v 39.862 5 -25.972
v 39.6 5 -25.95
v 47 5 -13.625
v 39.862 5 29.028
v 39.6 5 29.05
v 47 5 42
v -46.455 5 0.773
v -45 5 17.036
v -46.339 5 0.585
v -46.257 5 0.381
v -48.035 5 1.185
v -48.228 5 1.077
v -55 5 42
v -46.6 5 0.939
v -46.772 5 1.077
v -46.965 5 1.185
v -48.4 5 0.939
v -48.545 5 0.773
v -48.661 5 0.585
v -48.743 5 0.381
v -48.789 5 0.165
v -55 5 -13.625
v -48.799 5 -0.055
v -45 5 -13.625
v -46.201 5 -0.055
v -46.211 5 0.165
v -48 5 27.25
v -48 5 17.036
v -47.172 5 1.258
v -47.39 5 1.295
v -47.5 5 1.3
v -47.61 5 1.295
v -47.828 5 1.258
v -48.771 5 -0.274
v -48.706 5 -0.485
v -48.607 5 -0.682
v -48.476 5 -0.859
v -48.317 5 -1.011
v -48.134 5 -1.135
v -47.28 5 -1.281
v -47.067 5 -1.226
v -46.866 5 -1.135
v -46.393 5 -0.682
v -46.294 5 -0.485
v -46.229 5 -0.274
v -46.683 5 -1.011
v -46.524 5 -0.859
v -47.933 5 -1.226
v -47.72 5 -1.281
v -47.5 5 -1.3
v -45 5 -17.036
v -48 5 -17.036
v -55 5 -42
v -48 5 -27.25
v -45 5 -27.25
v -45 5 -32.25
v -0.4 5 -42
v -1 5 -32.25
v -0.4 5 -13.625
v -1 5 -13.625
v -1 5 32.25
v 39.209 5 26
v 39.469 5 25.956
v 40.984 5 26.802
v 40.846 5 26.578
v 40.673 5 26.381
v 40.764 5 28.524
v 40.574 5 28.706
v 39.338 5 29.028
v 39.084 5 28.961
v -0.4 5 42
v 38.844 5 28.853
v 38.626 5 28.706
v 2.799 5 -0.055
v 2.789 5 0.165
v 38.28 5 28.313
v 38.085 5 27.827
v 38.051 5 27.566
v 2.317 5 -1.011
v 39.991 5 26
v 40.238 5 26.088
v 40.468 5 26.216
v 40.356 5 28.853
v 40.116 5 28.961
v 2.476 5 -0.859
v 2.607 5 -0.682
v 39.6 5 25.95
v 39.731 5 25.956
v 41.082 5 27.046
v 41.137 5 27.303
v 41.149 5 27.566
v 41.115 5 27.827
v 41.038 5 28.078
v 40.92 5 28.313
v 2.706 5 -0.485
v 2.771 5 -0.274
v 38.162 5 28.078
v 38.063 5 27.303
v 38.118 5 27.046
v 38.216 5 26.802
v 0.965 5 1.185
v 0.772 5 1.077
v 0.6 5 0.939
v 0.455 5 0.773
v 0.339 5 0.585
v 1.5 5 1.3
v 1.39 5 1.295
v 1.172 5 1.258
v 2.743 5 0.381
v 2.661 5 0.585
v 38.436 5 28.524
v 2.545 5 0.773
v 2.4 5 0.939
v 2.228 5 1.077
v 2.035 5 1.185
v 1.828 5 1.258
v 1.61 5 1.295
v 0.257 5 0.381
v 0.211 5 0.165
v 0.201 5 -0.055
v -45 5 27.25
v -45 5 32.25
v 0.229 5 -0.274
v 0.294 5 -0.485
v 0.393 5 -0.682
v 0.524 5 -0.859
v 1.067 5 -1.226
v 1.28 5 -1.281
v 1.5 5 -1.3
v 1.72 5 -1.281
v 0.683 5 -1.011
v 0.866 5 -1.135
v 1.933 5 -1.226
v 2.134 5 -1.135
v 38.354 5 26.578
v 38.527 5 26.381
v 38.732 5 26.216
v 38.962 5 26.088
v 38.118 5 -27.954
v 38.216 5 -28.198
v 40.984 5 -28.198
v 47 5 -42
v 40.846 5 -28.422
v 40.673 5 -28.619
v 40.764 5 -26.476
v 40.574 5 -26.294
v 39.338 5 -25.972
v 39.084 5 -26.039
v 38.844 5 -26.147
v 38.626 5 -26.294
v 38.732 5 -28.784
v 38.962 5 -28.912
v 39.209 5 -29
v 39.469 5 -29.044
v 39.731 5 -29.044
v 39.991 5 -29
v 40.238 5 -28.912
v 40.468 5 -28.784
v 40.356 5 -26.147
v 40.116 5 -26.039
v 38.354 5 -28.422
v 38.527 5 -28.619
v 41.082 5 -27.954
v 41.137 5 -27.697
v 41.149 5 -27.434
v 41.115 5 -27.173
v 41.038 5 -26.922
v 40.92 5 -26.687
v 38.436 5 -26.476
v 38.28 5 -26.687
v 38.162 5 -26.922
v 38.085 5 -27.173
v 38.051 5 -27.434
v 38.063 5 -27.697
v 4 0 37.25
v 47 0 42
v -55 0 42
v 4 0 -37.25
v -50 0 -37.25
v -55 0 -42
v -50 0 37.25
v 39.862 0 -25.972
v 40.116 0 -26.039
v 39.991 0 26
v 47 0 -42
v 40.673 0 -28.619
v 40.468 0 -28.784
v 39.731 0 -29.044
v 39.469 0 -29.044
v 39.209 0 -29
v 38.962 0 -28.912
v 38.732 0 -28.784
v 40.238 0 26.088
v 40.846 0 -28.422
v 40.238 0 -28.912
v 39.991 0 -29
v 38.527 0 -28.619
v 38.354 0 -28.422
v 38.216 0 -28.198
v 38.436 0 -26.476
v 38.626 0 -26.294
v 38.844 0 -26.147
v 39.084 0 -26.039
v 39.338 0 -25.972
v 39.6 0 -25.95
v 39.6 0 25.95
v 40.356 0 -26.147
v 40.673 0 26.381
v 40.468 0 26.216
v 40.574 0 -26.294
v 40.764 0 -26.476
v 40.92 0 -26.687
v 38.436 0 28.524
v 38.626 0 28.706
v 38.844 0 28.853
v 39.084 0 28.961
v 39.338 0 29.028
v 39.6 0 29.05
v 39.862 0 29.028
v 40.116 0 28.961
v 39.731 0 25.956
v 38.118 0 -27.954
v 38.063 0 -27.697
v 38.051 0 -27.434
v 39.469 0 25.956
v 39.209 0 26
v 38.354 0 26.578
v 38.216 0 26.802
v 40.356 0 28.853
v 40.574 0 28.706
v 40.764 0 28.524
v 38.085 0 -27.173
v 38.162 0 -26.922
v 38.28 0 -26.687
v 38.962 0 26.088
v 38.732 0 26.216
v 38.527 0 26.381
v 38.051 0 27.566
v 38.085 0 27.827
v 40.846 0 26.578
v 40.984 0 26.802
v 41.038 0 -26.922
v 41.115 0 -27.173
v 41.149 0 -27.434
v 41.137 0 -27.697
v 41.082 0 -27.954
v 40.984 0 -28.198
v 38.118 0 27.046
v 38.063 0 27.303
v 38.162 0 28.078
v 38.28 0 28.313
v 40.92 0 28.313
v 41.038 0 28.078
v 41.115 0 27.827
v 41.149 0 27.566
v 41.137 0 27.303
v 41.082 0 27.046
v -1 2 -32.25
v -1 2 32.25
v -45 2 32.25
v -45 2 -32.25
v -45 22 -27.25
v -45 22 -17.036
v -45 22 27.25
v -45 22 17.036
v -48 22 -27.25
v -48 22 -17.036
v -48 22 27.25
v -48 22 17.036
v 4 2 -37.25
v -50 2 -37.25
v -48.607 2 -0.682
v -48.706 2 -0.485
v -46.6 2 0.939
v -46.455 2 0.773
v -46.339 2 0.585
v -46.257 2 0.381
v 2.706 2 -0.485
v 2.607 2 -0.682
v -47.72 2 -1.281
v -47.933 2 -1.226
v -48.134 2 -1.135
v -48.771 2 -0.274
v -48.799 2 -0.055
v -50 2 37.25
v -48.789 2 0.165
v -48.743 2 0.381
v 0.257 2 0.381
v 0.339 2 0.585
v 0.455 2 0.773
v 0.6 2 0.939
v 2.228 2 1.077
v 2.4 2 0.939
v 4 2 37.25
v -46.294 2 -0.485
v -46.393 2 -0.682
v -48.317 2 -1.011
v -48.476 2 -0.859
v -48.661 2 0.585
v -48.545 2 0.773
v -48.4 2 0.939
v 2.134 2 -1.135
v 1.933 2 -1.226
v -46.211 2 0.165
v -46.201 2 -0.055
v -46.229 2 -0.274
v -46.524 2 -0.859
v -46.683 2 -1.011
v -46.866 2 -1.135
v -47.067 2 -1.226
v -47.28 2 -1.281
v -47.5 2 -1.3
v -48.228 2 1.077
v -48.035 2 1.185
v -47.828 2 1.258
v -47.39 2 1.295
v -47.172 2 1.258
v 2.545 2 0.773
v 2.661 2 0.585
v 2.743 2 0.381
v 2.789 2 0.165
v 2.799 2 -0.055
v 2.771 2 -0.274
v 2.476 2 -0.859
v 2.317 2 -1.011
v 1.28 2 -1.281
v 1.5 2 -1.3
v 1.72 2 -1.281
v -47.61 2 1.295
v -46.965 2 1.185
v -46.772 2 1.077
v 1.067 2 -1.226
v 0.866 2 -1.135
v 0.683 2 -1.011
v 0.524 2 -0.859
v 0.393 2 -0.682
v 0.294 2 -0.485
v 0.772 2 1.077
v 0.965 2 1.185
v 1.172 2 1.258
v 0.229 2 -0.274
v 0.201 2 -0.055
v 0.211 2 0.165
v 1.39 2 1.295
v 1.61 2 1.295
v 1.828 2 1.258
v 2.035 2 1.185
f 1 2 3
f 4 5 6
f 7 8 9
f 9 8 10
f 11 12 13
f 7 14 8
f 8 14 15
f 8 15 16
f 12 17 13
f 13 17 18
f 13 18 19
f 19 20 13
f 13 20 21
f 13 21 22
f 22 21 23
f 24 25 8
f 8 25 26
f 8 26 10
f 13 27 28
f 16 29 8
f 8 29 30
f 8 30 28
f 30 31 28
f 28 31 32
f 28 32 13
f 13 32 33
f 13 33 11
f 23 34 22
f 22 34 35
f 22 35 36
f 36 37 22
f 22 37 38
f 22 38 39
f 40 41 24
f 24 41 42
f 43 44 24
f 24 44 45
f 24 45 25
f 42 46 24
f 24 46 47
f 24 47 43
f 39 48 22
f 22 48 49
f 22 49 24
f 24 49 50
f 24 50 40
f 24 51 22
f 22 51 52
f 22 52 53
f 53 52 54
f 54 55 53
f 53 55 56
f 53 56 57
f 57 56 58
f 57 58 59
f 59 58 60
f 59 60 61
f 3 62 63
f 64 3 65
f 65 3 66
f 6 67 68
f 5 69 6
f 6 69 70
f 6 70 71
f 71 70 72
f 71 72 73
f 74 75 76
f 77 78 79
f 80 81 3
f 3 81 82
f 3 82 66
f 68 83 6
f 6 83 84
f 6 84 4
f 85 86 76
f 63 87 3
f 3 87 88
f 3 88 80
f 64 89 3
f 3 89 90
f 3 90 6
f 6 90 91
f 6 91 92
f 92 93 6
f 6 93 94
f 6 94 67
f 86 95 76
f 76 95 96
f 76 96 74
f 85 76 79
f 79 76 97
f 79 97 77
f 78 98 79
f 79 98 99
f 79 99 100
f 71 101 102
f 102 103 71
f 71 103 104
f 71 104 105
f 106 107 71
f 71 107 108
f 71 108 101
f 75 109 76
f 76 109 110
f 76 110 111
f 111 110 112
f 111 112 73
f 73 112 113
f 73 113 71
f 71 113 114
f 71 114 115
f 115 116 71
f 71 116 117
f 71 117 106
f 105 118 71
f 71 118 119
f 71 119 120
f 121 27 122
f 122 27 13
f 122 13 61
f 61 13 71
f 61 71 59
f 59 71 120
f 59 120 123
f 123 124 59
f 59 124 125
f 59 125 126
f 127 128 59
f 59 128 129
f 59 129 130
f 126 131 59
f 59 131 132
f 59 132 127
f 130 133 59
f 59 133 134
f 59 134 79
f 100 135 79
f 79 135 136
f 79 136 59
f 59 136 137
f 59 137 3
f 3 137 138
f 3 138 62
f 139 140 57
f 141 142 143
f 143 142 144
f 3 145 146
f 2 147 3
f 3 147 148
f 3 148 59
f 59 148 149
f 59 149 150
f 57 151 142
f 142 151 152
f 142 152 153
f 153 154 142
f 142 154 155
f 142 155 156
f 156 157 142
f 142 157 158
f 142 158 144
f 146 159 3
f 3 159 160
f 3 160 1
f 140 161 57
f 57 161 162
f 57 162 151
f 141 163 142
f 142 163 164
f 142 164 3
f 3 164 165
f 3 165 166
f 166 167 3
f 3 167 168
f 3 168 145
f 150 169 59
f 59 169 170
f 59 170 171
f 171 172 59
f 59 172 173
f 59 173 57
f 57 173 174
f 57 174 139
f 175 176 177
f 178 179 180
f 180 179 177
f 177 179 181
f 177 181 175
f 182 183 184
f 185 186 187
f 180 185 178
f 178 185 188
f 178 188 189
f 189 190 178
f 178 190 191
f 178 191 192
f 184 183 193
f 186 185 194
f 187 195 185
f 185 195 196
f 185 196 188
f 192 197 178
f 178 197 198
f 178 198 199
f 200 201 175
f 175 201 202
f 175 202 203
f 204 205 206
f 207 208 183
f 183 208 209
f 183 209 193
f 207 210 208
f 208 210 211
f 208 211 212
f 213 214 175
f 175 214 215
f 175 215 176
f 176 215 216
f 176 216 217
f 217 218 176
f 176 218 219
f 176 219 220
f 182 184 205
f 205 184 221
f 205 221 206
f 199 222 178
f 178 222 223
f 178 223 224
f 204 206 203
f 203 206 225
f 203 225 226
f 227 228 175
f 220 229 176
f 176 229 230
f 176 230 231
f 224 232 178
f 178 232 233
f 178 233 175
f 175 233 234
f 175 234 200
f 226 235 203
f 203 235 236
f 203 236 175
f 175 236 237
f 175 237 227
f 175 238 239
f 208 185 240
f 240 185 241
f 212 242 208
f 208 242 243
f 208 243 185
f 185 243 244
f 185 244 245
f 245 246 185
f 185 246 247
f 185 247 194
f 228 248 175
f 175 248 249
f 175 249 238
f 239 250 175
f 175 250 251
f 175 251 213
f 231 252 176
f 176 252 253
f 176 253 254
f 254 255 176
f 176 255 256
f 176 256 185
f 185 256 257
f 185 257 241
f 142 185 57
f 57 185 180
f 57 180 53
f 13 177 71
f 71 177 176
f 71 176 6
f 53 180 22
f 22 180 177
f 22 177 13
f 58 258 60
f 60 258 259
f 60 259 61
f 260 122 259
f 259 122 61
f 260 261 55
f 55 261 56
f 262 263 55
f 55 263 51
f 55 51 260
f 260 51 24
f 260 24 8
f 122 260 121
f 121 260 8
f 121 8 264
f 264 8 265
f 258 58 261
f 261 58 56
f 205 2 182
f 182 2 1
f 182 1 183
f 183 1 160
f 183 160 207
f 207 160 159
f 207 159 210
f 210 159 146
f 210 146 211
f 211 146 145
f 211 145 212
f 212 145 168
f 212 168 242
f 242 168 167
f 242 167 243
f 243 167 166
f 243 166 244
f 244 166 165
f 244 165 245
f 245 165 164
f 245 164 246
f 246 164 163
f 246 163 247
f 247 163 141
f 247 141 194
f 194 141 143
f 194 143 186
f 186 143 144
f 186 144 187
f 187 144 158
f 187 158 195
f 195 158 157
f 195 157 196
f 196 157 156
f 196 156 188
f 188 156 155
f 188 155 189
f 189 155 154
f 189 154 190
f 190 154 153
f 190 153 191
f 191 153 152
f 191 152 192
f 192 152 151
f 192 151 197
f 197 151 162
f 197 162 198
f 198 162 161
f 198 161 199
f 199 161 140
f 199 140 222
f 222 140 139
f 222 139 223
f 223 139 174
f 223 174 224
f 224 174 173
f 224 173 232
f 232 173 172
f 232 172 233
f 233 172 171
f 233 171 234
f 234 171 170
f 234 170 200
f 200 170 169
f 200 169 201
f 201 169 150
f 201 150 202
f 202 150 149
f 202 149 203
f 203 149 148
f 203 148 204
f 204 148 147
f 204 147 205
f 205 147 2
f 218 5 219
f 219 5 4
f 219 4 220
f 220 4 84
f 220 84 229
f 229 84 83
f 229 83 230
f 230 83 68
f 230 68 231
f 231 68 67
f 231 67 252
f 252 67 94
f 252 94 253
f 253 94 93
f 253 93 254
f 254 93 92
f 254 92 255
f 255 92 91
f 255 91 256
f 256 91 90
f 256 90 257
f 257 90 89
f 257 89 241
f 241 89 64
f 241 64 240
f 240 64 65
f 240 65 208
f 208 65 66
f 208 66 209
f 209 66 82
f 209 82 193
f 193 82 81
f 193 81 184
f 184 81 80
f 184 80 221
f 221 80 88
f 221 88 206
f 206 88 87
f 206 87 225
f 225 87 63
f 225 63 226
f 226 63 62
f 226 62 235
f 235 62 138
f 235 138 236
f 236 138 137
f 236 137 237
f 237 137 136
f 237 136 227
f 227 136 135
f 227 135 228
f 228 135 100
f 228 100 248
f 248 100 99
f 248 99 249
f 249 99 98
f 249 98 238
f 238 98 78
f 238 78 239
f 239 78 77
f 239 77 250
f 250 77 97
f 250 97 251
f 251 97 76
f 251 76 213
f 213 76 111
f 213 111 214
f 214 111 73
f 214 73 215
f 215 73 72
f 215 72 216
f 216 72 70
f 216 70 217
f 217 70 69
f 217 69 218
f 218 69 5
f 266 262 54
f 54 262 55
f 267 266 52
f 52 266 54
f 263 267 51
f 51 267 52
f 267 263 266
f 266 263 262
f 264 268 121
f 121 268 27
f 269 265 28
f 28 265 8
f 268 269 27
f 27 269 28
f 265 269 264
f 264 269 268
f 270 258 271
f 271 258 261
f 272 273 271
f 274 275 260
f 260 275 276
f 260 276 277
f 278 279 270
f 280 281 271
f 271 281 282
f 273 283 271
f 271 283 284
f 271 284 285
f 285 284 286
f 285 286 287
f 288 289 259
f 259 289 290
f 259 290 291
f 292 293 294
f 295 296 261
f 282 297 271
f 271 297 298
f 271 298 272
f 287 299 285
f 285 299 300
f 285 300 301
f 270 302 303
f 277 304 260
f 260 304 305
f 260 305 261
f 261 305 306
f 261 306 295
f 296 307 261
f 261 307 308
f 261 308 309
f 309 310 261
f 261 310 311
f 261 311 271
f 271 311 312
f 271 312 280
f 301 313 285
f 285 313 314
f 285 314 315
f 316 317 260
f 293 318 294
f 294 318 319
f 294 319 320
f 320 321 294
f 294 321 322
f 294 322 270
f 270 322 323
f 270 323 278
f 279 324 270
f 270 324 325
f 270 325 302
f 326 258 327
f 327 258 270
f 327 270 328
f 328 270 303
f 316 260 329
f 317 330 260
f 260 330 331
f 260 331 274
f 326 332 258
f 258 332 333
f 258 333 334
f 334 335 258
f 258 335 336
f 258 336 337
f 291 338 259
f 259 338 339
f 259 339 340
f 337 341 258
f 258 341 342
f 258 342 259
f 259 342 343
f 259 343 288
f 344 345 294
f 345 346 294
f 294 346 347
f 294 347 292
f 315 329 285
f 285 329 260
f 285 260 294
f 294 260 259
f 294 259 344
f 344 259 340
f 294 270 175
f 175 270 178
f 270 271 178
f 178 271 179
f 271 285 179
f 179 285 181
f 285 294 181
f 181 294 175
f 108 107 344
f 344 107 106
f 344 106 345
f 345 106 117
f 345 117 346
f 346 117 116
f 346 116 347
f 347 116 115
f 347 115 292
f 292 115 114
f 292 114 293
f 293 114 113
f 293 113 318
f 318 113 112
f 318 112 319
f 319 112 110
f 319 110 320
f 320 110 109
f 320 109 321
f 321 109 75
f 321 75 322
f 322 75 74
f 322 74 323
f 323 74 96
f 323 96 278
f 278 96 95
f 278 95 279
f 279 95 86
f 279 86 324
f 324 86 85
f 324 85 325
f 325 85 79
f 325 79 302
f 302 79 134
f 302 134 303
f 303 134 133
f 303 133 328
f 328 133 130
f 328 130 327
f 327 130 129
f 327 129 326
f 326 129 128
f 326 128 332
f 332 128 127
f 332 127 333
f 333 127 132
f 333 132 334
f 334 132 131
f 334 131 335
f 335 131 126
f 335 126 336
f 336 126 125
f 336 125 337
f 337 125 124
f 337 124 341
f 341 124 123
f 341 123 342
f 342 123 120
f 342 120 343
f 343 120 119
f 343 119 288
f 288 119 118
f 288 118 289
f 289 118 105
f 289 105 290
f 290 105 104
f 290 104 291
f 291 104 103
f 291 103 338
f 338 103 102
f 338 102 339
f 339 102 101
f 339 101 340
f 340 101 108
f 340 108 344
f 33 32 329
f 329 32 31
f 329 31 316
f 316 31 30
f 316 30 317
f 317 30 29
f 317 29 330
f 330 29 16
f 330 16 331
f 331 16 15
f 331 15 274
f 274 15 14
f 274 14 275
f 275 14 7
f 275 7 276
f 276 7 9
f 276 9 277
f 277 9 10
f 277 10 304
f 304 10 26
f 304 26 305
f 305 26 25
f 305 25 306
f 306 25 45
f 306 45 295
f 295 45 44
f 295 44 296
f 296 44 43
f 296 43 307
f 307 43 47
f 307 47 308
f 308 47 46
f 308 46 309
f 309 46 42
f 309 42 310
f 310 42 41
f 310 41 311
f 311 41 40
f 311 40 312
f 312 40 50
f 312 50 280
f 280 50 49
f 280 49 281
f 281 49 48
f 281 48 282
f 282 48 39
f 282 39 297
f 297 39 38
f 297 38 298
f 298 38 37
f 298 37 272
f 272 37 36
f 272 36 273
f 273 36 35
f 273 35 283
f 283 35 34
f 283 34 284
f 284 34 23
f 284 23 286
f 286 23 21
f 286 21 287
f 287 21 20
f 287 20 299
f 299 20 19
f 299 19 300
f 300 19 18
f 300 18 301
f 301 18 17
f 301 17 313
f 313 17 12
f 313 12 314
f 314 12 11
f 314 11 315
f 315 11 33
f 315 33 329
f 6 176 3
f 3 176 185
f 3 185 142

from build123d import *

# Parameters (mm, degrees)
SKETCH1_W           = 110
SKETCH1_H           = 84
BOSS_EXTRUDE1_DEPTH = 5
SKETCH2_W           = 44
SKETCH2_H           = 64.5
CUT_EXTRUDE1_DEPTH  = 5
SKETCH3_R           = 1.55
CUT_EXTRUDE2_DEPTH  = 5
SKETCH5_W           = 3
SKETCH5_H           = 10.213632632
BOSS_EXTRUDE2_DEPTH = 17
SKETCH6_W           = 54
SKETCH6_H           = 74.5
CUT_EXTRUDE3_DEPTH  = 2
CUT_EXTRUDE4_REACH  = 22
SKETCH7_R           = 1.3
SKETCH8_W           = 84
SKETCH8_H           = 5
CUT_EXTRUDE5_DEPTH  = 8


with BuildPart() as part:
    # Sketch1 → Boss-Extrude1 (new body)
    with BuildSketch(Plane(origin=(0, 0, 0), x_dir=(1, 0, 0), z_dir=(0, 1, 0))):
        Rectangle(SKETCH1_W, SKETCH1_H)
    extrude(amount=BOSS_EXTRUDE1_DEPTH)

    # Sketch2 → Cut-Extrude1 (cut)
    with BuildSketch(Plane(origin=(0, 5, 0), x_dir=(1, 0, 0), z_dir=(0, 1, 0))):
        with Locations((-23, 0)):
            Rectangle(SKETCH2_W, SKETCH2_H)
    extrude(amount=-CUT_EXTRUDE1_DEPTH, mode=Mode.SUBTRACT)

    # Sketch3 → Cut-Extrude2 (cut)
    with BuildSketch(Plane(origin=(0, 5, 0), x_dir=(1, 0, 0), z_dir=(0, 1, 0))):
        with Locations((39.6, 27.5)):
            Circle(SKETCH3_R)
        with Locations((39.6, -27.5)):
            Circle(SKETCH3_R)
    extrude(amount=-CUT_EXTRUDE2_DEPTH, mode=Mode.SUBTRACT)

    # Sketch5 → Boss-Extrude2 (add)
    with BuildSketch(Plane(origin=(0, 5, 0), x_dir=(1, 0, 0), z_dir=(0, 1, 0))):
        with Locations((-46.5, 22.143183684)):
            Rectangle(SKETCH5_W, SKETCH5_H)
        with Locations((-46.5, -22.143183684)):
            Rectangle(SKETCH5_W, SKETCH5_H)
    extrude(amount=BOSS_EXTRUDE2_DEPTH)

    # Sketch6 → Cut-Extrude3 (cut)
    with BuildSketch(Plane.XZ):
        with Locations((-23, 0)):
            Rectangle(SKETCH6_W, SKETCH6_H)
    extrude(amount=-CUT_EXTRUDE3_DEPTH, mode=Mode.SUBTRACT)

    # Sketch7 → Cut-Extrude4 (cut, up to next)
    with BuildSketch(Plane.XZ.offset(-2), mode=Mode.PRIVATE) as cut_extrude4_sk1:
        with Locations((-47.5, 0)):
            Circle(SKETCH7_R)
    cut_extrude4_tool1 = extrude(cut_extrude4_sk1.sketch, amount=-CUT_EXTRUDE4_REACH, mode=Mode.PRIVATE) & part.part
    add(cut_extrude4_tool1.solids().sort_by_distance((-47.5, 2, 0))[0], mode=Mode.SUBTRACT)
    # Sketch7 → Cut-Extrude4 (cut, up to next)
    with BuildSketch(Plane.XZ.offset(-2), mode=Mode.PRIVATE) as cut_extrude4_sk2:
        with Locations((1.5, 0)):
            Circle(SKETCH7_R)
    cut_extrude4_tool2 = extrude(cut_extrude4_sk2.sketch, amount=-CUT_EXTRUDE4_REACH, mode=Mode.PRIVATE) & part.part
    add(cut_extrude4_tool2.solids().sort_by_distance((1.5, 2, 0))[0], mode=Mode.SUBTRACT)

    # Sketch8 → Cut-Extrude5 (cut)
    with BuildSketch(Plane(origin=(55, 0, 0), x_dir=(0, 0, -1), z_dir=(1, 0, 0))):
        with Locations((0, 2.5)):
            Rectangle(SKETCH8_W, SKETCH8_H)
    extrude(amount=-CUT_EXTRUDE5_DEPTH, mode=Mode.SUBTRACT)


solid = part.part
